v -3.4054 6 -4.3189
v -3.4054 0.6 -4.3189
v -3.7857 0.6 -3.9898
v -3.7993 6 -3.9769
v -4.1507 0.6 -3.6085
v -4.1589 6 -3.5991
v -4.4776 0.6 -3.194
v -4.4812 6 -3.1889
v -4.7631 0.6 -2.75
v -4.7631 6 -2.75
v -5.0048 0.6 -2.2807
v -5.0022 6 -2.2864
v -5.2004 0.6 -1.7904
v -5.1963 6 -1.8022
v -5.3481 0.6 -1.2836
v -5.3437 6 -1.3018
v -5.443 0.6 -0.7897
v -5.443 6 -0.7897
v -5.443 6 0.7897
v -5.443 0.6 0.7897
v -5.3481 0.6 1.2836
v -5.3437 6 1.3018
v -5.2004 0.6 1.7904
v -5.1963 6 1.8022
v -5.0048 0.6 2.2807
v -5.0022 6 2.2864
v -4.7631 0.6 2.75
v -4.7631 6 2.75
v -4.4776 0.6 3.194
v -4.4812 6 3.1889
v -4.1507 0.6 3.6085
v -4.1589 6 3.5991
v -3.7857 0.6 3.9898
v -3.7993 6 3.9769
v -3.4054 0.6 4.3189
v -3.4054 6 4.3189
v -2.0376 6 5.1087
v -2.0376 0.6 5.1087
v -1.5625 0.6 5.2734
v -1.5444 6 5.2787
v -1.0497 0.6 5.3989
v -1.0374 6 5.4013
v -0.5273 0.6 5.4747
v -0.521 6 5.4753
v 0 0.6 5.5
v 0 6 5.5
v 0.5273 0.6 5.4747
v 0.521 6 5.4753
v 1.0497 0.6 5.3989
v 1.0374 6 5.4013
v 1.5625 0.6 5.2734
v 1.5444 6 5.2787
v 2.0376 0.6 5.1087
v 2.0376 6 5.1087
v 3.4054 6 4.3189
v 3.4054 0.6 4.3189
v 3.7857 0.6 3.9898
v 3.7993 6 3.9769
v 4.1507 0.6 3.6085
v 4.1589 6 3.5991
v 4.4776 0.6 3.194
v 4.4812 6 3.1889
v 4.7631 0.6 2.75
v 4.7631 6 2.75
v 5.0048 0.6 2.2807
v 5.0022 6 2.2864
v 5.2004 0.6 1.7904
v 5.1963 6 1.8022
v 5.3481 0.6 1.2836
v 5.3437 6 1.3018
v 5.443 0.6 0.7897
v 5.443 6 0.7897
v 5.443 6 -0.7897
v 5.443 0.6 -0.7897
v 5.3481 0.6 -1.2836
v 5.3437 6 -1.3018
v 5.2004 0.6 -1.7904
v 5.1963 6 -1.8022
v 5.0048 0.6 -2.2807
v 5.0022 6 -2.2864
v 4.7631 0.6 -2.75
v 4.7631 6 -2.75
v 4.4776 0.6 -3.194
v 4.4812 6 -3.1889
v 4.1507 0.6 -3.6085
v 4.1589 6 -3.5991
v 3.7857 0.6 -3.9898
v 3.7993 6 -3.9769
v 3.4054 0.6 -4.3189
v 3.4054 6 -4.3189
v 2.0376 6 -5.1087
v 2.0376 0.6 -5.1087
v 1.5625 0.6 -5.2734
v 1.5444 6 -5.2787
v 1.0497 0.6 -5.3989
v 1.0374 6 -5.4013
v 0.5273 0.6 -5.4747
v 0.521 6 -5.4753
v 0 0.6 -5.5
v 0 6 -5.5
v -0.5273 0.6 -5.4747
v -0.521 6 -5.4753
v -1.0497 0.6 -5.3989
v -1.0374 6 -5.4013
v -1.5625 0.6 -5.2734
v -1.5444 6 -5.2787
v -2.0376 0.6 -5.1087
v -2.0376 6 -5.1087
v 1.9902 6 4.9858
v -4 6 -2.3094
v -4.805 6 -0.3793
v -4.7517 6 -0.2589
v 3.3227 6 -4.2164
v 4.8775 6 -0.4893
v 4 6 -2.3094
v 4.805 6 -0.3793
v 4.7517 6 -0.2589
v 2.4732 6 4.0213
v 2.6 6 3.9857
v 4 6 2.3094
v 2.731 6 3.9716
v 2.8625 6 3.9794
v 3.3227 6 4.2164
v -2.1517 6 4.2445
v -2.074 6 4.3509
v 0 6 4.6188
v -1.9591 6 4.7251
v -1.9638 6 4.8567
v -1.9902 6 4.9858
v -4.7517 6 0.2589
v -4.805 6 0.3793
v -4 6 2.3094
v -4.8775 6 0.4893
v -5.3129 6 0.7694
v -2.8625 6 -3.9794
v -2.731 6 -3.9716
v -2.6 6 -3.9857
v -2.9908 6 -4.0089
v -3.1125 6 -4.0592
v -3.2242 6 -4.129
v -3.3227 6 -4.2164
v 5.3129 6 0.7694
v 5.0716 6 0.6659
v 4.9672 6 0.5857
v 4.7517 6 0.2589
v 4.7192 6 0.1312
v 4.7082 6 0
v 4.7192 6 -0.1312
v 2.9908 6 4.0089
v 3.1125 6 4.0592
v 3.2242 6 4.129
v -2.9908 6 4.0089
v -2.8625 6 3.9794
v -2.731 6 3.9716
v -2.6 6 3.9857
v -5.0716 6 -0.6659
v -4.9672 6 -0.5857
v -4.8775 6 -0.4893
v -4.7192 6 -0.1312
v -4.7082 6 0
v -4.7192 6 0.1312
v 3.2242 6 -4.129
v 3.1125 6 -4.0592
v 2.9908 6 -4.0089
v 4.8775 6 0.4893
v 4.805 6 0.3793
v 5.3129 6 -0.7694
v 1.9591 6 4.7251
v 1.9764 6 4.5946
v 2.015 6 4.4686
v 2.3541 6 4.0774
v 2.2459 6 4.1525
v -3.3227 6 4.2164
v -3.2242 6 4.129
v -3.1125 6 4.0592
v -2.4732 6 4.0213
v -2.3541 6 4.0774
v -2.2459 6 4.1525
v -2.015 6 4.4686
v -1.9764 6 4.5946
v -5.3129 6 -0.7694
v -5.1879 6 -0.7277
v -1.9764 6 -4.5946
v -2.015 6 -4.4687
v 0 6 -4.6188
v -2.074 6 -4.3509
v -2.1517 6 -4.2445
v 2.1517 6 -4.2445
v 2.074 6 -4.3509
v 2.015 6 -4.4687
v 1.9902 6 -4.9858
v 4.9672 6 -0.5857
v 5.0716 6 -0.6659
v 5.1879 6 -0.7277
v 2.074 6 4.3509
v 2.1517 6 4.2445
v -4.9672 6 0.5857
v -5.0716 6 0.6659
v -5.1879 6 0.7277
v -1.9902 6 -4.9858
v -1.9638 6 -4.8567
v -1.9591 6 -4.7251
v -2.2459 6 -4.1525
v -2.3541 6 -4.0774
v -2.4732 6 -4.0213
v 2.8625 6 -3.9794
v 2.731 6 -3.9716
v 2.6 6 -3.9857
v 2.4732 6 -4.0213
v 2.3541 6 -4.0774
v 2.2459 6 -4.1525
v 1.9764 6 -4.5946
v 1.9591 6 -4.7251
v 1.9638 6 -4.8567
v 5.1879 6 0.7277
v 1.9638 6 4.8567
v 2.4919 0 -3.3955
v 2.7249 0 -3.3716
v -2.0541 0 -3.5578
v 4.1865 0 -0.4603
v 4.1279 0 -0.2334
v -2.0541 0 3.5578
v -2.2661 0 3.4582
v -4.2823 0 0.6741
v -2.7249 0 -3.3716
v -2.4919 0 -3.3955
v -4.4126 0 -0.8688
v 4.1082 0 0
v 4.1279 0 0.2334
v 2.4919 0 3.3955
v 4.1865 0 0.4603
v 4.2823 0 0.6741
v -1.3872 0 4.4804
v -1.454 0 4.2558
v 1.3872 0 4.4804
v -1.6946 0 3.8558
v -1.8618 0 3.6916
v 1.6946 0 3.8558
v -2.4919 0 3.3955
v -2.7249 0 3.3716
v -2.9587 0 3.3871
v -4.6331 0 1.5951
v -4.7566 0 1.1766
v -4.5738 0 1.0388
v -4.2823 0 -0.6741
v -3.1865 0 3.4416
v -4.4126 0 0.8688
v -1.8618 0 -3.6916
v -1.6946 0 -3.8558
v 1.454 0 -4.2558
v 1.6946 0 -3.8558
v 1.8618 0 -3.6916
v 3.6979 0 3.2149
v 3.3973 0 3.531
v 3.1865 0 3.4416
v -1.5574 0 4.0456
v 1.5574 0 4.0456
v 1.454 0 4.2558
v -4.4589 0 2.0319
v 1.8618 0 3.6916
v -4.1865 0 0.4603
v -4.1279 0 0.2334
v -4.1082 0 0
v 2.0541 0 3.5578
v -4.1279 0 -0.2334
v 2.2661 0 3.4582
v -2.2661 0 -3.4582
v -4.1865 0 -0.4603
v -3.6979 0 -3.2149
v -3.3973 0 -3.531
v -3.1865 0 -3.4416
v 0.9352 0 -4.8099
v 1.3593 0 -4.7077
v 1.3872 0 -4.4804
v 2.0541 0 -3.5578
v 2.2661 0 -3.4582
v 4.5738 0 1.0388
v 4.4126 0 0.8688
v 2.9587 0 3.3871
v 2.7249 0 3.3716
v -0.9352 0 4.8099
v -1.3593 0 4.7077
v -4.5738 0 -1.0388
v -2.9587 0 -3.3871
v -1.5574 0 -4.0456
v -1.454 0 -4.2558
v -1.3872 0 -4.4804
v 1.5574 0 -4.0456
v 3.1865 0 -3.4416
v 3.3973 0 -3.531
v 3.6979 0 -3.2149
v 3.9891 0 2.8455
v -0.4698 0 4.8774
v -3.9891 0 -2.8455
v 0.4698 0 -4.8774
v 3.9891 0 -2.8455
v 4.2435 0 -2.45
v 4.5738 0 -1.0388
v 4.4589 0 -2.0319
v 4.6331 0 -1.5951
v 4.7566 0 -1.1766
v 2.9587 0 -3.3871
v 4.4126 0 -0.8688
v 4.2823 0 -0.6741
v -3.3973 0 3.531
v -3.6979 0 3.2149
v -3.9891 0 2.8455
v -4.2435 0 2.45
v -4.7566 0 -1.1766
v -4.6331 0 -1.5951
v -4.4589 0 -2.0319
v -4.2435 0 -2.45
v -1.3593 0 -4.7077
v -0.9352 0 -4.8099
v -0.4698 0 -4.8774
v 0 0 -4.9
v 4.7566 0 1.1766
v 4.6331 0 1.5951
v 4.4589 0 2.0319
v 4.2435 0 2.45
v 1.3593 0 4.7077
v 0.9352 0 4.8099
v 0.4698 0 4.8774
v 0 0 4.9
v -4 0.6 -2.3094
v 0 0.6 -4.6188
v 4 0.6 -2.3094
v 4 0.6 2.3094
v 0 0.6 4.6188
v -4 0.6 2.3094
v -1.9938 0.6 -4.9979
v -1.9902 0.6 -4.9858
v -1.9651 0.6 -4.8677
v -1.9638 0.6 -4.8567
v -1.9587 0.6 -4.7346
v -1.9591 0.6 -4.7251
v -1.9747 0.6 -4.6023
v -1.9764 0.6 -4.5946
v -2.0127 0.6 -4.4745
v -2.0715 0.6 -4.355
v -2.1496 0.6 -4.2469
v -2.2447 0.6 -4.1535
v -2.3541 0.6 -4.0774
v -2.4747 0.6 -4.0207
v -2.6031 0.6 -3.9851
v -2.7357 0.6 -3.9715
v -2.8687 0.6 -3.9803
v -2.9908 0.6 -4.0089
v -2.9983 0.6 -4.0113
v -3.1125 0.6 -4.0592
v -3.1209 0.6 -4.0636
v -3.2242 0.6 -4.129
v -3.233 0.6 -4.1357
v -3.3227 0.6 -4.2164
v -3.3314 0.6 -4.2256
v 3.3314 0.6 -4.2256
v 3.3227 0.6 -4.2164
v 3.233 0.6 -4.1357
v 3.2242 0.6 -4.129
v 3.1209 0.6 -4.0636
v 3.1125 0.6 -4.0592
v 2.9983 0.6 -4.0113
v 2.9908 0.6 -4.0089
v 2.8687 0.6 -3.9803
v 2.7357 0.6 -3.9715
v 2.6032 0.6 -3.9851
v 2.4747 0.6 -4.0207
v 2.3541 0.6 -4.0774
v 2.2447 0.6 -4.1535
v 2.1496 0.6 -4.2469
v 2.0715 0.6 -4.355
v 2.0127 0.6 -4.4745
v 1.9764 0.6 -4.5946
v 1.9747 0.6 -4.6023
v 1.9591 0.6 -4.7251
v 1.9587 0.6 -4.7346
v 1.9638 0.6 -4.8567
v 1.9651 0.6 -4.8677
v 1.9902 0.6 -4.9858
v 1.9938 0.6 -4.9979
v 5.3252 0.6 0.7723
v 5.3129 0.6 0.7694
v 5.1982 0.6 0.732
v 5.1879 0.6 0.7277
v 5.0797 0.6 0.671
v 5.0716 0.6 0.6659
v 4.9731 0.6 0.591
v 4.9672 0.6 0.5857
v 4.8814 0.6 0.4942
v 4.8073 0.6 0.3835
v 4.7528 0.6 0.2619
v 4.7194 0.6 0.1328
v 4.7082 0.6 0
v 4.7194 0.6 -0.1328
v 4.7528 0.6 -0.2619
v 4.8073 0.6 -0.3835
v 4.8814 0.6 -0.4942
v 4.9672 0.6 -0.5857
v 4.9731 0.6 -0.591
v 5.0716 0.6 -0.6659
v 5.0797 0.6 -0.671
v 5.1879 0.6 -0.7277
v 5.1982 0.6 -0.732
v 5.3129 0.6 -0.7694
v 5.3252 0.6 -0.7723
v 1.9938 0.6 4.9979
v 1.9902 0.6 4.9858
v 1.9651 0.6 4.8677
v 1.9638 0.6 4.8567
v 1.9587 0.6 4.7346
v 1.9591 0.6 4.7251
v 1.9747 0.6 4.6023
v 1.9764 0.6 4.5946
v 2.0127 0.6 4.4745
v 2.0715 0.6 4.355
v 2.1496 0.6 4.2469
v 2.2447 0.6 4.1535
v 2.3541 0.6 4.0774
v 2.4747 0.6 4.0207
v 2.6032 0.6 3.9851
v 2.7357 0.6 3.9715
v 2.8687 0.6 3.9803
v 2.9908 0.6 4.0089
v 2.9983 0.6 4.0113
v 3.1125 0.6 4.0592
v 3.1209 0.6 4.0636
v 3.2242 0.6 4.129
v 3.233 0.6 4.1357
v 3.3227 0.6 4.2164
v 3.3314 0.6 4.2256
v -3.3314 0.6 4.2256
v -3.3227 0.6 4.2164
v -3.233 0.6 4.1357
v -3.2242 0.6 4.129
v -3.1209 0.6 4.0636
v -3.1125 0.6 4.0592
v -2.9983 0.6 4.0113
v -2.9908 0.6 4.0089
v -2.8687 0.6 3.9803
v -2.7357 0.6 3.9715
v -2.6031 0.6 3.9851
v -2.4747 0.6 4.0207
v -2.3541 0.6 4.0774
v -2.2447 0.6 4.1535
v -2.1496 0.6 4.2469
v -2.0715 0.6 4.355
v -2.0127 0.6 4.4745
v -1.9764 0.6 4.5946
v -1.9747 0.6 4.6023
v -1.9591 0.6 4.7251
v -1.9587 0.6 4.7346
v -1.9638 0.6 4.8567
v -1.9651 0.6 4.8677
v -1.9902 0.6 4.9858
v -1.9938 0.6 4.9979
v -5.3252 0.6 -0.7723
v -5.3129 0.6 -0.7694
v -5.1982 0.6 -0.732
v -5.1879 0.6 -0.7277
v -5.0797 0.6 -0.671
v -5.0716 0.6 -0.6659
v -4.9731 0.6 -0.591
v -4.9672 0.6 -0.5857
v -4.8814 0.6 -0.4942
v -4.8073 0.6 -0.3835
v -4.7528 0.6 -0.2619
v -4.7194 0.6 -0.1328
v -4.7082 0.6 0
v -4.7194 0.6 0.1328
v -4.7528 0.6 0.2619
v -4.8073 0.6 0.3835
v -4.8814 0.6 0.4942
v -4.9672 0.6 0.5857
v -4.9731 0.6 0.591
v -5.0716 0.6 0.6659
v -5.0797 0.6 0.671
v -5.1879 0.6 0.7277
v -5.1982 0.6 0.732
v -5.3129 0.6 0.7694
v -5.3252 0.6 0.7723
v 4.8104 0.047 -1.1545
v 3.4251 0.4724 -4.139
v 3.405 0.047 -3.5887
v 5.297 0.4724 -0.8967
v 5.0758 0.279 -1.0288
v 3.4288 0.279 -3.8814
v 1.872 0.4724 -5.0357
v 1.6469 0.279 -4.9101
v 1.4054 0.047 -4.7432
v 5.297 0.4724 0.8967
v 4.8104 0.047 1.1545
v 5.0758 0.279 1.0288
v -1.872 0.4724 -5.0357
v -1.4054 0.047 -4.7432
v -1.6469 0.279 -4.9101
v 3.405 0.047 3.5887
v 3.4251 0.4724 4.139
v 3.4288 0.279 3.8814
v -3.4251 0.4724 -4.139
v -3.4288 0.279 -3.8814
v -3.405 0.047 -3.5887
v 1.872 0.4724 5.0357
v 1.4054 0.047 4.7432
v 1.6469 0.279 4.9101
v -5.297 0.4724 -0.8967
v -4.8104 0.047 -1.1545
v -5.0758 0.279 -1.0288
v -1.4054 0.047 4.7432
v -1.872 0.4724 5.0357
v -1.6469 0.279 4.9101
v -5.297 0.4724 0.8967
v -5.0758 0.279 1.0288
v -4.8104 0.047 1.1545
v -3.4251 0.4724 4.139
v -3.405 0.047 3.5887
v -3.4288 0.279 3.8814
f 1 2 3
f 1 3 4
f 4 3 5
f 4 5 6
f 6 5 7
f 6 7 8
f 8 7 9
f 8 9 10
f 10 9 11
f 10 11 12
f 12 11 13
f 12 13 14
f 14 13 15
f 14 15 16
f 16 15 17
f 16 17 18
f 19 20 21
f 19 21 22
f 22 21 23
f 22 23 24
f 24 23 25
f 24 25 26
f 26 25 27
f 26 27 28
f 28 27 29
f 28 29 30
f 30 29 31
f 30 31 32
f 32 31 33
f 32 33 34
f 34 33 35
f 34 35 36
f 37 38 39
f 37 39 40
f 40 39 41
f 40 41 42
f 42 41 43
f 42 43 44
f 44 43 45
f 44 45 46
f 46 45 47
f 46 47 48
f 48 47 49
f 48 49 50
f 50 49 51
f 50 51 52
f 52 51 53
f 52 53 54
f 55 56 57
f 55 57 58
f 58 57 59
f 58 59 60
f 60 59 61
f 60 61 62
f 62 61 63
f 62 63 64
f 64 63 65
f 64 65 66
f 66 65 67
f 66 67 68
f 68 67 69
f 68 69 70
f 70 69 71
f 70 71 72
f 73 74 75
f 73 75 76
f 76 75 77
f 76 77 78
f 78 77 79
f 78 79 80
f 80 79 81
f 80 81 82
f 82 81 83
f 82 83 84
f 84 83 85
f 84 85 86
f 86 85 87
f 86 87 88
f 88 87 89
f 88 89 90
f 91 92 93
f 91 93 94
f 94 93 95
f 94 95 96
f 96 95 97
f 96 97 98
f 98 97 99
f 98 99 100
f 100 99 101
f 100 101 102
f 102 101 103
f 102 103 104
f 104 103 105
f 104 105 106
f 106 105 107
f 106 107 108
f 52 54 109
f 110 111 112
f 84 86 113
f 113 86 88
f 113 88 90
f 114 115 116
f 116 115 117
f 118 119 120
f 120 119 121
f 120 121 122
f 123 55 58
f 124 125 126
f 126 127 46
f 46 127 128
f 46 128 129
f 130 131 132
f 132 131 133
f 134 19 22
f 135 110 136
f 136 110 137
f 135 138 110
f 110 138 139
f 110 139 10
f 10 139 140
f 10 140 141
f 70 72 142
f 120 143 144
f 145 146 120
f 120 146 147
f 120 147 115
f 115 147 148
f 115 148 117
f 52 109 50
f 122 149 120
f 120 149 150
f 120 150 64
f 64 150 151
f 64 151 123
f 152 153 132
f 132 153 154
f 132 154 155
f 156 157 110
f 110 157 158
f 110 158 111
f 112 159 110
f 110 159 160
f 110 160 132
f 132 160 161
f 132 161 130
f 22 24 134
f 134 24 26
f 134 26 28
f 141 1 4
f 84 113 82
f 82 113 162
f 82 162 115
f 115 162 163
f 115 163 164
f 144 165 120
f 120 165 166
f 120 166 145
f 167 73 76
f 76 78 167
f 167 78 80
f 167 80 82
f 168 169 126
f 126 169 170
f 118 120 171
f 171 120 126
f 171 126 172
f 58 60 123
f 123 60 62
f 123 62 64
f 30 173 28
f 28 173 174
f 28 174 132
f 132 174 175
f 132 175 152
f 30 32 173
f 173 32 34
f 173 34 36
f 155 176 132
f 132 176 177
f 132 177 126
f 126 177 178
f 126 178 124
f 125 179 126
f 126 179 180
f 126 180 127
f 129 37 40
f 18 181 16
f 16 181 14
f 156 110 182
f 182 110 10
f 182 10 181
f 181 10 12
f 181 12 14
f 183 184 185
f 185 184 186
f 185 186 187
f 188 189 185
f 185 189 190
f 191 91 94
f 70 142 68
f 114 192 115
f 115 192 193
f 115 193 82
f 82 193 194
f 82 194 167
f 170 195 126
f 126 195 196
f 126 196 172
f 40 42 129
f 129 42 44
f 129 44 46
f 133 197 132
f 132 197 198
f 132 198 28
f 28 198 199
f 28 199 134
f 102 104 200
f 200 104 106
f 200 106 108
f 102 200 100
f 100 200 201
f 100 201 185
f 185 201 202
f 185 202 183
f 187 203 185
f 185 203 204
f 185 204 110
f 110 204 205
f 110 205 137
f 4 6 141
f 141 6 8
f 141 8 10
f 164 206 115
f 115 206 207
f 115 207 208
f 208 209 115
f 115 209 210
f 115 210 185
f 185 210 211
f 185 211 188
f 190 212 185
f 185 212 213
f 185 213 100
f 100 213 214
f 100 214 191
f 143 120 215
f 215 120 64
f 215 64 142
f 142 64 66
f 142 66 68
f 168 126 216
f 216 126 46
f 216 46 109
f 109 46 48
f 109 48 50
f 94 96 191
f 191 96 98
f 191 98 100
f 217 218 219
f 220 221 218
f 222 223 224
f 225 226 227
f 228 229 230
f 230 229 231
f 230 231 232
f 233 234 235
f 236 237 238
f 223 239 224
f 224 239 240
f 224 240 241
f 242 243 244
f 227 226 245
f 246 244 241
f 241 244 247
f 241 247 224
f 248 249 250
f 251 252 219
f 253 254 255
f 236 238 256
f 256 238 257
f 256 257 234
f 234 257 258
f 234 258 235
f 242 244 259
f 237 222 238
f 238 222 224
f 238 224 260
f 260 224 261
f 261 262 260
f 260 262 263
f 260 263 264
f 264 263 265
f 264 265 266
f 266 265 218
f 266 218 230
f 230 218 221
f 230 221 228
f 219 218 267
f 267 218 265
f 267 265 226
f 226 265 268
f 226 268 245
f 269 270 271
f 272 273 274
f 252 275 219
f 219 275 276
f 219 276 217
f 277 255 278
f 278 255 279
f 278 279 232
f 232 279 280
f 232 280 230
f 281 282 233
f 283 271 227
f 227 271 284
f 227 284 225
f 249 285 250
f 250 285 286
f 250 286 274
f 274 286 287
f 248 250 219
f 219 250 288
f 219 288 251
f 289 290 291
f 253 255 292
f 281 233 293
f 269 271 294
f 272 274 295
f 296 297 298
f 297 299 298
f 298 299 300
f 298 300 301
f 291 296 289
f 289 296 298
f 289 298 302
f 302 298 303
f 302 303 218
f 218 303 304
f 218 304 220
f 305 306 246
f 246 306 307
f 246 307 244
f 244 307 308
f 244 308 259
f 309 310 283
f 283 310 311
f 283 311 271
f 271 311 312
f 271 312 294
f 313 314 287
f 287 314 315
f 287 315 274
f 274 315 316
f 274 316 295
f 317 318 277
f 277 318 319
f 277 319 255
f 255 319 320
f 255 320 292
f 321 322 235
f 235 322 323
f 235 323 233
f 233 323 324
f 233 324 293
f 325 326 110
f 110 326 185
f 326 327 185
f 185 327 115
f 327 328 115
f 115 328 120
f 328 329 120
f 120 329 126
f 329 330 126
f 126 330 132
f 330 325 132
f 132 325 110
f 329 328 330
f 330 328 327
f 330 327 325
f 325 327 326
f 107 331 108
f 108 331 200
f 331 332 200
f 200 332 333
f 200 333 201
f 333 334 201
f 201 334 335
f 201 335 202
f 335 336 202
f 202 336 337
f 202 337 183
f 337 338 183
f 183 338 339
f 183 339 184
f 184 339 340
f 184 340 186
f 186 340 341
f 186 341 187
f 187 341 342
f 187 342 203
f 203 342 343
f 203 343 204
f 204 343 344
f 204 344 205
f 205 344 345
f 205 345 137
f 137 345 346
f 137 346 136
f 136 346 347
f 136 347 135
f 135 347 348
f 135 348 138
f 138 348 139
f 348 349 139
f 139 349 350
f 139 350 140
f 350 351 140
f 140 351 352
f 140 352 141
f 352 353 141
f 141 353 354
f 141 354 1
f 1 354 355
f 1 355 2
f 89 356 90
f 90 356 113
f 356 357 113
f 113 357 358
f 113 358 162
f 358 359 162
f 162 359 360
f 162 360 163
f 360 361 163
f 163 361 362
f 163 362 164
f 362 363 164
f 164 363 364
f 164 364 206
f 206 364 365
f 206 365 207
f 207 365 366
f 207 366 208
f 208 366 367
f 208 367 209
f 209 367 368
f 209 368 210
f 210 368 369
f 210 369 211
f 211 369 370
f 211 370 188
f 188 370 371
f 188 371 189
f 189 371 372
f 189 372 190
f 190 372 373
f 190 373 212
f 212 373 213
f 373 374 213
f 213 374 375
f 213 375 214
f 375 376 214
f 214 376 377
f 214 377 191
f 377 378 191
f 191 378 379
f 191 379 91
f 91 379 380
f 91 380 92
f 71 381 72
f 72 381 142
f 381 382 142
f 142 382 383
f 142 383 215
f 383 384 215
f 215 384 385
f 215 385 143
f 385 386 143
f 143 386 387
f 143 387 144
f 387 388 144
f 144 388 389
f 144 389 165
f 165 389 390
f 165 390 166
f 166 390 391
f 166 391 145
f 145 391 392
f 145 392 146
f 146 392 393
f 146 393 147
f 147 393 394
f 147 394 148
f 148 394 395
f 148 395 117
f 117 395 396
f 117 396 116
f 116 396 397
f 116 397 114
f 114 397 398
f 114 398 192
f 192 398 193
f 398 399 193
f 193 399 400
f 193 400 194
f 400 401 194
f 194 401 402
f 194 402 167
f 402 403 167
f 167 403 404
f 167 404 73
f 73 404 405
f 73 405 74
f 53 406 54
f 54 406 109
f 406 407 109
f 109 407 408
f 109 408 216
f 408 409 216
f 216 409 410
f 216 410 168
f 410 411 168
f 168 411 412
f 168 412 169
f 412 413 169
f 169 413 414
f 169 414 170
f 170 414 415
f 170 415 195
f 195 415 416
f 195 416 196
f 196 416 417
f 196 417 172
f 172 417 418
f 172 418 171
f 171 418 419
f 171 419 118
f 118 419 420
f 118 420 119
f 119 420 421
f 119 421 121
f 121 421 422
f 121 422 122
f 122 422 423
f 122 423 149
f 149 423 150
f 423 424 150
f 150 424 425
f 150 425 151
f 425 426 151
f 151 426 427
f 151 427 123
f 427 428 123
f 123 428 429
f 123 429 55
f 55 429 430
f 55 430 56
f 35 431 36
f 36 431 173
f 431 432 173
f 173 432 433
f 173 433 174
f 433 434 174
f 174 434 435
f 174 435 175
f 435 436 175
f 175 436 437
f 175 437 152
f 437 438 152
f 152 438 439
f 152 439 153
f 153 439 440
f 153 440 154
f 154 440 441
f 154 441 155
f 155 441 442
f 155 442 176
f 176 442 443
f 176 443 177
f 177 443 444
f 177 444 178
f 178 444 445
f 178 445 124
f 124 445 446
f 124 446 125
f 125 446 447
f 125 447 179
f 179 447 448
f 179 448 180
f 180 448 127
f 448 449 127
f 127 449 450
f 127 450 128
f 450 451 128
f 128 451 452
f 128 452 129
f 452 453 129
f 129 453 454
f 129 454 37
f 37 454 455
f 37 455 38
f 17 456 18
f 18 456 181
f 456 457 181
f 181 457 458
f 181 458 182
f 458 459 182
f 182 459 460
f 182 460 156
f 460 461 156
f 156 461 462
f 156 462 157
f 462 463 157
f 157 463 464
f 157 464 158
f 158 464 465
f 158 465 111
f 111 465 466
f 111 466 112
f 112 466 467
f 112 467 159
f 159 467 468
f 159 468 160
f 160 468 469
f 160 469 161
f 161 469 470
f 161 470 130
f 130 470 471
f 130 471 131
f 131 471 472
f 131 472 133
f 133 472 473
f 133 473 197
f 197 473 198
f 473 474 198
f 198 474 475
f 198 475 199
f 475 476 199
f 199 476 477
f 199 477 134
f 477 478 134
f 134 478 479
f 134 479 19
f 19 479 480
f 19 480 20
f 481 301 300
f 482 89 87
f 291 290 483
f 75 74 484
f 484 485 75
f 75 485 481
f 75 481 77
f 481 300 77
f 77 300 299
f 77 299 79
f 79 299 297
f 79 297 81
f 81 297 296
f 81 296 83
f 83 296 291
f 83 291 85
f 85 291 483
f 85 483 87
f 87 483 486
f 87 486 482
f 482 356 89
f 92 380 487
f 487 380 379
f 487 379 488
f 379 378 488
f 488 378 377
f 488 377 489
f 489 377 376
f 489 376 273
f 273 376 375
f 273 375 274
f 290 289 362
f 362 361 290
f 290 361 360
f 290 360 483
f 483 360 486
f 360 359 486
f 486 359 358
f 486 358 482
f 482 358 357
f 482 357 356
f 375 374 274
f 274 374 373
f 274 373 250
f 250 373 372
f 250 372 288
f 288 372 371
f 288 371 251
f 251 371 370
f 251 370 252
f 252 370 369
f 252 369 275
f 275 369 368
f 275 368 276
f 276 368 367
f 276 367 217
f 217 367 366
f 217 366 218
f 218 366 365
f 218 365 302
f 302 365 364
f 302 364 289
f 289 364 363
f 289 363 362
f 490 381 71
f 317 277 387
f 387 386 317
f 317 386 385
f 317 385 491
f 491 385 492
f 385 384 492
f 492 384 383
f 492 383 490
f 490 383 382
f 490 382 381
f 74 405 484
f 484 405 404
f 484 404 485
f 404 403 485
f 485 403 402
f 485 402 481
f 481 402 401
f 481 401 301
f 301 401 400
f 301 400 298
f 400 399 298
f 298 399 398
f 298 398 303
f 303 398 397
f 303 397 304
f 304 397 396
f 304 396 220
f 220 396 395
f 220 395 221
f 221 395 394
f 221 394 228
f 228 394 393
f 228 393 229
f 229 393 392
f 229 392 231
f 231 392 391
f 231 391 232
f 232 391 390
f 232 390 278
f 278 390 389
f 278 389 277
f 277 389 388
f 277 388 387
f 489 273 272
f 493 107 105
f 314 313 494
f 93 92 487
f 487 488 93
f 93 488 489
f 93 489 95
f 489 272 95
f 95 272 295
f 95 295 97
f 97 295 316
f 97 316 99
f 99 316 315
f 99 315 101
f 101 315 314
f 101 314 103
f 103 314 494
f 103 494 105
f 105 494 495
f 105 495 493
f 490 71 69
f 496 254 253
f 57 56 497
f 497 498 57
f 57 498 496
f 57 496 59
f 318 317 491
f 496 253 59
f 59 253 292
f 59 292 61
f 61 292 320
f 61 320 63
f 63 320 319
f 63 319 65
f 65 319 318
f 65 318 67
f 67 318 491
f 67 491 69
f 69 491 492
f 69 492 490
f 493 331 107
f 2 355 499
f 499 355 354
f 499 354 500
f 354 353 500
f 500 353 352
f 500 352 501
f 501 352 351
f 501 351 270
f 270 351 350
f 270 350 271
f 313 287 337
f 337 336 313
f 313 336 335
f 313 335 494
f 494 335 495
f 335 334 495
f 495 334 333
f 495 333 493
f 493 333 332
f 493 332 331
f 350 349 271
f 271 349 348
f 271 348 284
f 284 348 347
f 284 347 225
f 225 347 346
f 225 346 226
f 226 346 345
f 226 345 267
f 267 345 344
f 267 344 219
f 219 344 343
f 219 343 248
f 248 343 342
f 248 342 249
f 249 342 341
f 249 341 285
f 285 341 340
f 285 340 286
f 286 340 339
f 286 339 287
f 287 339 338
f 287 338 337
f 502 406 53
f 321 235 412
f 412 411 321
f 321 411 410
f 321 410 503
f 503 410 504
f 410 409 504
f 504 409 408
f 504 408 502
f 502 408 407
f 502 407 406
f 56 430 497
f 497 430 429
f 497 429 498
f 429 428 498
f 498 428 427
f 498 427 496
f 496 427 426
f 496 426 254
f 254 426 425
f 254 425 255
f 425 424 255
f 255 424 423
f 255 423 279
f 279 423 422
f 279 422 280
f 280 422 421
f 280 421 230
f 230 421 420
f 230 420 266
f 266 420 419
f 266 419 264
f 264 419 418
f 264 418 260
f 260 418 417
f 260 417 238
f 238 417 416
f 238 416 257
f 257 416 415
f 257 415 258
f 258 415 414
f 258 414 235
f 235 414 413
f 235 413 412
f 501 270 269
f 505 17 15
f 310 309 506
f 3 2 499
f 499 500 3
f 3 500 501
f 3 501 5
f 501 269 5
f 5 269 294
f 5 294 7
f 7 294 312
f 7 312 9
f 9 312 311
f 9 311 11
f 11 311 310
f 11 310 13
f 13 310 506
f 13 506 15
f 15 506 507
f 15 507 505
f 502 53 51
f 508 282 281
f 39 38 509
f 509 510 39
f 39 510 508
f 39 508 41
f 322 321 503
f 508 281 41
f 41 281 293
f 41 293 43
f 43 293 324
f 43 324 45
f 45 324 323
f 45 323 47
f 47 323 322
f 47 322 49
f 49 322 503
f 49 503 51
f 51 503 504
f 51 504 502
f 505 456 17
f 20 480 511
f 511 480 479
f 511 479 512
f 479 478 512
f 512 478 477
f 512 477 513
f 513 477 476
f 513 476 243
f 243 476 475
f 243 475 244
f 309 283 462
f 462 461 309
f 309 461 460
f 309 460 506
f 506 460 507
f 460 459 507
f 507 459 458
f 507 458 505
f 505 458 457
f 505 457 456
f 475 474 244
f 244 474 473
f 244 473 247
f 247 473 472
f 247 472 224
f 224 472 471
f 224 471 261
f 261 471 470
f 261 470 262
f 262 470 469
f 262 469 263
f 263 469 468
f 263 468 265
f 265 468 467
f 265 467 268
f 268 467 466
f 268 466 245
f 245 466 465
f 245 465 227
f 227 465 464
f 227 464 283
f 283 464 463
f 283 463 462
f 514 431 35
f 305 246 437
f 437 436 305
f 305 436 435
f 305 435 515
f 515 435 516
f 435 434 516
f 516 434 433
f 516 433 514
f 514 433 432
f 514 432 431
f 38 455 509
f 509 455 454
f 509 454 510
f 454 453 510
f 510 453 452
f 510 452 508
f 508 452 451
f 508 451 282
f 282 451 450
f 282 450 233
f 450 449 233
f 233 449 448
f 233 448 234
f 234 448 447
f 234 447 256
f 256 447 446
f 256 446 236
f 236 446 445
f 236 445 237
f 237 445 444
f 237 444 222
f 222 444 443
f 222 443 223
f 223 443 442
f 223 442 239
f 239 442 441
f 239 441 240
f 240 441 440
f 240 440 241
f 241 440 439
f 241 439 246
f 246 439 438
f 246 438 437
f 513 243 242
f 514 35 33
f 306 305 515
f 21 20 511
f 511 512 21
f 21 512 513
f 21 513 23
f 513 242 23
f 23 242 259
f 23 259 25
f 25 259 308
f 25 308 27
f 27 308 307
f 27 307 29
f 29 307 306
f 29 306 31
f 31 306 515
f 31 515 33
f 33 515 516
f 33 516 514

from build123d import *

# Parameters (mm, degrees)
SKETCH1_R           = 5.5
BOSS_EXTRUDE1_DEPTH = 6
CUT_EXTRUDE1_START  = 6
CUT_EXTRUDE1_DEPTH  = 5.4
SKETCH3_R           = 0.791791972
CUT_EXTRUDE2_DEPTH  = 6
CHAMFER1_SIZE       = 0.6


with BuildPart() as part:
    # Sketch1 → Boss-Extrude1 (new body)
    with BuildSketch(Plane(origin=(0, 0, 0), x_dir=(1, 0, 0), z_dir=(0, 1, 0))):
        Circle(SKETCH1_R)
    extrude(amount=BOSS_EXTRUDE1_DEPTH)

    # Sketch2 → Cut-Extrude1 (cut)
    with BuildSketch(Plane(origin=(0, 0, 0), x_dir=(1, 0, 0), z_dir=(0, 1, 0)).offset(CUT_EXTRUDE1_START)):
        Polygon((4, -2.309401077), (4, 2.309401077), (0, 4.618802154), (-4, 2.309401077), (-4, -2.309401077), (0, -4.618802154), align=None)
    extrude(amount=-CUT_EXTRUDE1_DEPTH, mode=Mode.SUBTRACT)

    # Sketch3 → Cut-Extrude2 (cut)
    with BuildSketch(Plane(origin=(0, 0, 0), x_dir=(1, 0, 0), z_dir=(0, 1, 0))):
        with Locations((-5.5, 0)):
            Circle(SKETCH3_R)
        with Locations((-2.75, 4.763139721)):
            Circle(SKETCH3_R)
        with Locations((2.75, 4.763139721)):
            Circle(SKETCH3_R)
        with Locations((5.5, 0)):
            Circle(SKETCH3_R)
        with Locations((2.75, -4.763139721)):
            Circle(SKETCH3_R)
        with Locations((-2.75, -4.763139721)):
            Circle(SKETCH3_R)
    extrude(amount=CUT_EXTRUDE2_DEPTH, mode=Mode.SUBTRACT)

    # Chamfer1
    chamfer1_edges = [part.edges().sort_by_distance(p)[0] for p in [
        (4.763139721, 0, 2.75),
        (4.763139721, 0, -2.75),
        (0, 0, -5.5),
        (-4.763139721, 0, -2.75),
        (-4.763139721, 0, 2.75),
        (0, 0, 5.5),
        (-2.354104014, 0, -4.077427759),
        (2.354104014, 0, -4.077427759),
        (-4.708208028, 0, 0),
        (-2.354104014, 0, 4.077427759),
        (2.354104014, 0, 4.077427759),
        (4.708208028, 0, 0),
    ]]
    chamfer(chamfer1_edges, length=CHAMFER1_SIZE)


solid = part.part
